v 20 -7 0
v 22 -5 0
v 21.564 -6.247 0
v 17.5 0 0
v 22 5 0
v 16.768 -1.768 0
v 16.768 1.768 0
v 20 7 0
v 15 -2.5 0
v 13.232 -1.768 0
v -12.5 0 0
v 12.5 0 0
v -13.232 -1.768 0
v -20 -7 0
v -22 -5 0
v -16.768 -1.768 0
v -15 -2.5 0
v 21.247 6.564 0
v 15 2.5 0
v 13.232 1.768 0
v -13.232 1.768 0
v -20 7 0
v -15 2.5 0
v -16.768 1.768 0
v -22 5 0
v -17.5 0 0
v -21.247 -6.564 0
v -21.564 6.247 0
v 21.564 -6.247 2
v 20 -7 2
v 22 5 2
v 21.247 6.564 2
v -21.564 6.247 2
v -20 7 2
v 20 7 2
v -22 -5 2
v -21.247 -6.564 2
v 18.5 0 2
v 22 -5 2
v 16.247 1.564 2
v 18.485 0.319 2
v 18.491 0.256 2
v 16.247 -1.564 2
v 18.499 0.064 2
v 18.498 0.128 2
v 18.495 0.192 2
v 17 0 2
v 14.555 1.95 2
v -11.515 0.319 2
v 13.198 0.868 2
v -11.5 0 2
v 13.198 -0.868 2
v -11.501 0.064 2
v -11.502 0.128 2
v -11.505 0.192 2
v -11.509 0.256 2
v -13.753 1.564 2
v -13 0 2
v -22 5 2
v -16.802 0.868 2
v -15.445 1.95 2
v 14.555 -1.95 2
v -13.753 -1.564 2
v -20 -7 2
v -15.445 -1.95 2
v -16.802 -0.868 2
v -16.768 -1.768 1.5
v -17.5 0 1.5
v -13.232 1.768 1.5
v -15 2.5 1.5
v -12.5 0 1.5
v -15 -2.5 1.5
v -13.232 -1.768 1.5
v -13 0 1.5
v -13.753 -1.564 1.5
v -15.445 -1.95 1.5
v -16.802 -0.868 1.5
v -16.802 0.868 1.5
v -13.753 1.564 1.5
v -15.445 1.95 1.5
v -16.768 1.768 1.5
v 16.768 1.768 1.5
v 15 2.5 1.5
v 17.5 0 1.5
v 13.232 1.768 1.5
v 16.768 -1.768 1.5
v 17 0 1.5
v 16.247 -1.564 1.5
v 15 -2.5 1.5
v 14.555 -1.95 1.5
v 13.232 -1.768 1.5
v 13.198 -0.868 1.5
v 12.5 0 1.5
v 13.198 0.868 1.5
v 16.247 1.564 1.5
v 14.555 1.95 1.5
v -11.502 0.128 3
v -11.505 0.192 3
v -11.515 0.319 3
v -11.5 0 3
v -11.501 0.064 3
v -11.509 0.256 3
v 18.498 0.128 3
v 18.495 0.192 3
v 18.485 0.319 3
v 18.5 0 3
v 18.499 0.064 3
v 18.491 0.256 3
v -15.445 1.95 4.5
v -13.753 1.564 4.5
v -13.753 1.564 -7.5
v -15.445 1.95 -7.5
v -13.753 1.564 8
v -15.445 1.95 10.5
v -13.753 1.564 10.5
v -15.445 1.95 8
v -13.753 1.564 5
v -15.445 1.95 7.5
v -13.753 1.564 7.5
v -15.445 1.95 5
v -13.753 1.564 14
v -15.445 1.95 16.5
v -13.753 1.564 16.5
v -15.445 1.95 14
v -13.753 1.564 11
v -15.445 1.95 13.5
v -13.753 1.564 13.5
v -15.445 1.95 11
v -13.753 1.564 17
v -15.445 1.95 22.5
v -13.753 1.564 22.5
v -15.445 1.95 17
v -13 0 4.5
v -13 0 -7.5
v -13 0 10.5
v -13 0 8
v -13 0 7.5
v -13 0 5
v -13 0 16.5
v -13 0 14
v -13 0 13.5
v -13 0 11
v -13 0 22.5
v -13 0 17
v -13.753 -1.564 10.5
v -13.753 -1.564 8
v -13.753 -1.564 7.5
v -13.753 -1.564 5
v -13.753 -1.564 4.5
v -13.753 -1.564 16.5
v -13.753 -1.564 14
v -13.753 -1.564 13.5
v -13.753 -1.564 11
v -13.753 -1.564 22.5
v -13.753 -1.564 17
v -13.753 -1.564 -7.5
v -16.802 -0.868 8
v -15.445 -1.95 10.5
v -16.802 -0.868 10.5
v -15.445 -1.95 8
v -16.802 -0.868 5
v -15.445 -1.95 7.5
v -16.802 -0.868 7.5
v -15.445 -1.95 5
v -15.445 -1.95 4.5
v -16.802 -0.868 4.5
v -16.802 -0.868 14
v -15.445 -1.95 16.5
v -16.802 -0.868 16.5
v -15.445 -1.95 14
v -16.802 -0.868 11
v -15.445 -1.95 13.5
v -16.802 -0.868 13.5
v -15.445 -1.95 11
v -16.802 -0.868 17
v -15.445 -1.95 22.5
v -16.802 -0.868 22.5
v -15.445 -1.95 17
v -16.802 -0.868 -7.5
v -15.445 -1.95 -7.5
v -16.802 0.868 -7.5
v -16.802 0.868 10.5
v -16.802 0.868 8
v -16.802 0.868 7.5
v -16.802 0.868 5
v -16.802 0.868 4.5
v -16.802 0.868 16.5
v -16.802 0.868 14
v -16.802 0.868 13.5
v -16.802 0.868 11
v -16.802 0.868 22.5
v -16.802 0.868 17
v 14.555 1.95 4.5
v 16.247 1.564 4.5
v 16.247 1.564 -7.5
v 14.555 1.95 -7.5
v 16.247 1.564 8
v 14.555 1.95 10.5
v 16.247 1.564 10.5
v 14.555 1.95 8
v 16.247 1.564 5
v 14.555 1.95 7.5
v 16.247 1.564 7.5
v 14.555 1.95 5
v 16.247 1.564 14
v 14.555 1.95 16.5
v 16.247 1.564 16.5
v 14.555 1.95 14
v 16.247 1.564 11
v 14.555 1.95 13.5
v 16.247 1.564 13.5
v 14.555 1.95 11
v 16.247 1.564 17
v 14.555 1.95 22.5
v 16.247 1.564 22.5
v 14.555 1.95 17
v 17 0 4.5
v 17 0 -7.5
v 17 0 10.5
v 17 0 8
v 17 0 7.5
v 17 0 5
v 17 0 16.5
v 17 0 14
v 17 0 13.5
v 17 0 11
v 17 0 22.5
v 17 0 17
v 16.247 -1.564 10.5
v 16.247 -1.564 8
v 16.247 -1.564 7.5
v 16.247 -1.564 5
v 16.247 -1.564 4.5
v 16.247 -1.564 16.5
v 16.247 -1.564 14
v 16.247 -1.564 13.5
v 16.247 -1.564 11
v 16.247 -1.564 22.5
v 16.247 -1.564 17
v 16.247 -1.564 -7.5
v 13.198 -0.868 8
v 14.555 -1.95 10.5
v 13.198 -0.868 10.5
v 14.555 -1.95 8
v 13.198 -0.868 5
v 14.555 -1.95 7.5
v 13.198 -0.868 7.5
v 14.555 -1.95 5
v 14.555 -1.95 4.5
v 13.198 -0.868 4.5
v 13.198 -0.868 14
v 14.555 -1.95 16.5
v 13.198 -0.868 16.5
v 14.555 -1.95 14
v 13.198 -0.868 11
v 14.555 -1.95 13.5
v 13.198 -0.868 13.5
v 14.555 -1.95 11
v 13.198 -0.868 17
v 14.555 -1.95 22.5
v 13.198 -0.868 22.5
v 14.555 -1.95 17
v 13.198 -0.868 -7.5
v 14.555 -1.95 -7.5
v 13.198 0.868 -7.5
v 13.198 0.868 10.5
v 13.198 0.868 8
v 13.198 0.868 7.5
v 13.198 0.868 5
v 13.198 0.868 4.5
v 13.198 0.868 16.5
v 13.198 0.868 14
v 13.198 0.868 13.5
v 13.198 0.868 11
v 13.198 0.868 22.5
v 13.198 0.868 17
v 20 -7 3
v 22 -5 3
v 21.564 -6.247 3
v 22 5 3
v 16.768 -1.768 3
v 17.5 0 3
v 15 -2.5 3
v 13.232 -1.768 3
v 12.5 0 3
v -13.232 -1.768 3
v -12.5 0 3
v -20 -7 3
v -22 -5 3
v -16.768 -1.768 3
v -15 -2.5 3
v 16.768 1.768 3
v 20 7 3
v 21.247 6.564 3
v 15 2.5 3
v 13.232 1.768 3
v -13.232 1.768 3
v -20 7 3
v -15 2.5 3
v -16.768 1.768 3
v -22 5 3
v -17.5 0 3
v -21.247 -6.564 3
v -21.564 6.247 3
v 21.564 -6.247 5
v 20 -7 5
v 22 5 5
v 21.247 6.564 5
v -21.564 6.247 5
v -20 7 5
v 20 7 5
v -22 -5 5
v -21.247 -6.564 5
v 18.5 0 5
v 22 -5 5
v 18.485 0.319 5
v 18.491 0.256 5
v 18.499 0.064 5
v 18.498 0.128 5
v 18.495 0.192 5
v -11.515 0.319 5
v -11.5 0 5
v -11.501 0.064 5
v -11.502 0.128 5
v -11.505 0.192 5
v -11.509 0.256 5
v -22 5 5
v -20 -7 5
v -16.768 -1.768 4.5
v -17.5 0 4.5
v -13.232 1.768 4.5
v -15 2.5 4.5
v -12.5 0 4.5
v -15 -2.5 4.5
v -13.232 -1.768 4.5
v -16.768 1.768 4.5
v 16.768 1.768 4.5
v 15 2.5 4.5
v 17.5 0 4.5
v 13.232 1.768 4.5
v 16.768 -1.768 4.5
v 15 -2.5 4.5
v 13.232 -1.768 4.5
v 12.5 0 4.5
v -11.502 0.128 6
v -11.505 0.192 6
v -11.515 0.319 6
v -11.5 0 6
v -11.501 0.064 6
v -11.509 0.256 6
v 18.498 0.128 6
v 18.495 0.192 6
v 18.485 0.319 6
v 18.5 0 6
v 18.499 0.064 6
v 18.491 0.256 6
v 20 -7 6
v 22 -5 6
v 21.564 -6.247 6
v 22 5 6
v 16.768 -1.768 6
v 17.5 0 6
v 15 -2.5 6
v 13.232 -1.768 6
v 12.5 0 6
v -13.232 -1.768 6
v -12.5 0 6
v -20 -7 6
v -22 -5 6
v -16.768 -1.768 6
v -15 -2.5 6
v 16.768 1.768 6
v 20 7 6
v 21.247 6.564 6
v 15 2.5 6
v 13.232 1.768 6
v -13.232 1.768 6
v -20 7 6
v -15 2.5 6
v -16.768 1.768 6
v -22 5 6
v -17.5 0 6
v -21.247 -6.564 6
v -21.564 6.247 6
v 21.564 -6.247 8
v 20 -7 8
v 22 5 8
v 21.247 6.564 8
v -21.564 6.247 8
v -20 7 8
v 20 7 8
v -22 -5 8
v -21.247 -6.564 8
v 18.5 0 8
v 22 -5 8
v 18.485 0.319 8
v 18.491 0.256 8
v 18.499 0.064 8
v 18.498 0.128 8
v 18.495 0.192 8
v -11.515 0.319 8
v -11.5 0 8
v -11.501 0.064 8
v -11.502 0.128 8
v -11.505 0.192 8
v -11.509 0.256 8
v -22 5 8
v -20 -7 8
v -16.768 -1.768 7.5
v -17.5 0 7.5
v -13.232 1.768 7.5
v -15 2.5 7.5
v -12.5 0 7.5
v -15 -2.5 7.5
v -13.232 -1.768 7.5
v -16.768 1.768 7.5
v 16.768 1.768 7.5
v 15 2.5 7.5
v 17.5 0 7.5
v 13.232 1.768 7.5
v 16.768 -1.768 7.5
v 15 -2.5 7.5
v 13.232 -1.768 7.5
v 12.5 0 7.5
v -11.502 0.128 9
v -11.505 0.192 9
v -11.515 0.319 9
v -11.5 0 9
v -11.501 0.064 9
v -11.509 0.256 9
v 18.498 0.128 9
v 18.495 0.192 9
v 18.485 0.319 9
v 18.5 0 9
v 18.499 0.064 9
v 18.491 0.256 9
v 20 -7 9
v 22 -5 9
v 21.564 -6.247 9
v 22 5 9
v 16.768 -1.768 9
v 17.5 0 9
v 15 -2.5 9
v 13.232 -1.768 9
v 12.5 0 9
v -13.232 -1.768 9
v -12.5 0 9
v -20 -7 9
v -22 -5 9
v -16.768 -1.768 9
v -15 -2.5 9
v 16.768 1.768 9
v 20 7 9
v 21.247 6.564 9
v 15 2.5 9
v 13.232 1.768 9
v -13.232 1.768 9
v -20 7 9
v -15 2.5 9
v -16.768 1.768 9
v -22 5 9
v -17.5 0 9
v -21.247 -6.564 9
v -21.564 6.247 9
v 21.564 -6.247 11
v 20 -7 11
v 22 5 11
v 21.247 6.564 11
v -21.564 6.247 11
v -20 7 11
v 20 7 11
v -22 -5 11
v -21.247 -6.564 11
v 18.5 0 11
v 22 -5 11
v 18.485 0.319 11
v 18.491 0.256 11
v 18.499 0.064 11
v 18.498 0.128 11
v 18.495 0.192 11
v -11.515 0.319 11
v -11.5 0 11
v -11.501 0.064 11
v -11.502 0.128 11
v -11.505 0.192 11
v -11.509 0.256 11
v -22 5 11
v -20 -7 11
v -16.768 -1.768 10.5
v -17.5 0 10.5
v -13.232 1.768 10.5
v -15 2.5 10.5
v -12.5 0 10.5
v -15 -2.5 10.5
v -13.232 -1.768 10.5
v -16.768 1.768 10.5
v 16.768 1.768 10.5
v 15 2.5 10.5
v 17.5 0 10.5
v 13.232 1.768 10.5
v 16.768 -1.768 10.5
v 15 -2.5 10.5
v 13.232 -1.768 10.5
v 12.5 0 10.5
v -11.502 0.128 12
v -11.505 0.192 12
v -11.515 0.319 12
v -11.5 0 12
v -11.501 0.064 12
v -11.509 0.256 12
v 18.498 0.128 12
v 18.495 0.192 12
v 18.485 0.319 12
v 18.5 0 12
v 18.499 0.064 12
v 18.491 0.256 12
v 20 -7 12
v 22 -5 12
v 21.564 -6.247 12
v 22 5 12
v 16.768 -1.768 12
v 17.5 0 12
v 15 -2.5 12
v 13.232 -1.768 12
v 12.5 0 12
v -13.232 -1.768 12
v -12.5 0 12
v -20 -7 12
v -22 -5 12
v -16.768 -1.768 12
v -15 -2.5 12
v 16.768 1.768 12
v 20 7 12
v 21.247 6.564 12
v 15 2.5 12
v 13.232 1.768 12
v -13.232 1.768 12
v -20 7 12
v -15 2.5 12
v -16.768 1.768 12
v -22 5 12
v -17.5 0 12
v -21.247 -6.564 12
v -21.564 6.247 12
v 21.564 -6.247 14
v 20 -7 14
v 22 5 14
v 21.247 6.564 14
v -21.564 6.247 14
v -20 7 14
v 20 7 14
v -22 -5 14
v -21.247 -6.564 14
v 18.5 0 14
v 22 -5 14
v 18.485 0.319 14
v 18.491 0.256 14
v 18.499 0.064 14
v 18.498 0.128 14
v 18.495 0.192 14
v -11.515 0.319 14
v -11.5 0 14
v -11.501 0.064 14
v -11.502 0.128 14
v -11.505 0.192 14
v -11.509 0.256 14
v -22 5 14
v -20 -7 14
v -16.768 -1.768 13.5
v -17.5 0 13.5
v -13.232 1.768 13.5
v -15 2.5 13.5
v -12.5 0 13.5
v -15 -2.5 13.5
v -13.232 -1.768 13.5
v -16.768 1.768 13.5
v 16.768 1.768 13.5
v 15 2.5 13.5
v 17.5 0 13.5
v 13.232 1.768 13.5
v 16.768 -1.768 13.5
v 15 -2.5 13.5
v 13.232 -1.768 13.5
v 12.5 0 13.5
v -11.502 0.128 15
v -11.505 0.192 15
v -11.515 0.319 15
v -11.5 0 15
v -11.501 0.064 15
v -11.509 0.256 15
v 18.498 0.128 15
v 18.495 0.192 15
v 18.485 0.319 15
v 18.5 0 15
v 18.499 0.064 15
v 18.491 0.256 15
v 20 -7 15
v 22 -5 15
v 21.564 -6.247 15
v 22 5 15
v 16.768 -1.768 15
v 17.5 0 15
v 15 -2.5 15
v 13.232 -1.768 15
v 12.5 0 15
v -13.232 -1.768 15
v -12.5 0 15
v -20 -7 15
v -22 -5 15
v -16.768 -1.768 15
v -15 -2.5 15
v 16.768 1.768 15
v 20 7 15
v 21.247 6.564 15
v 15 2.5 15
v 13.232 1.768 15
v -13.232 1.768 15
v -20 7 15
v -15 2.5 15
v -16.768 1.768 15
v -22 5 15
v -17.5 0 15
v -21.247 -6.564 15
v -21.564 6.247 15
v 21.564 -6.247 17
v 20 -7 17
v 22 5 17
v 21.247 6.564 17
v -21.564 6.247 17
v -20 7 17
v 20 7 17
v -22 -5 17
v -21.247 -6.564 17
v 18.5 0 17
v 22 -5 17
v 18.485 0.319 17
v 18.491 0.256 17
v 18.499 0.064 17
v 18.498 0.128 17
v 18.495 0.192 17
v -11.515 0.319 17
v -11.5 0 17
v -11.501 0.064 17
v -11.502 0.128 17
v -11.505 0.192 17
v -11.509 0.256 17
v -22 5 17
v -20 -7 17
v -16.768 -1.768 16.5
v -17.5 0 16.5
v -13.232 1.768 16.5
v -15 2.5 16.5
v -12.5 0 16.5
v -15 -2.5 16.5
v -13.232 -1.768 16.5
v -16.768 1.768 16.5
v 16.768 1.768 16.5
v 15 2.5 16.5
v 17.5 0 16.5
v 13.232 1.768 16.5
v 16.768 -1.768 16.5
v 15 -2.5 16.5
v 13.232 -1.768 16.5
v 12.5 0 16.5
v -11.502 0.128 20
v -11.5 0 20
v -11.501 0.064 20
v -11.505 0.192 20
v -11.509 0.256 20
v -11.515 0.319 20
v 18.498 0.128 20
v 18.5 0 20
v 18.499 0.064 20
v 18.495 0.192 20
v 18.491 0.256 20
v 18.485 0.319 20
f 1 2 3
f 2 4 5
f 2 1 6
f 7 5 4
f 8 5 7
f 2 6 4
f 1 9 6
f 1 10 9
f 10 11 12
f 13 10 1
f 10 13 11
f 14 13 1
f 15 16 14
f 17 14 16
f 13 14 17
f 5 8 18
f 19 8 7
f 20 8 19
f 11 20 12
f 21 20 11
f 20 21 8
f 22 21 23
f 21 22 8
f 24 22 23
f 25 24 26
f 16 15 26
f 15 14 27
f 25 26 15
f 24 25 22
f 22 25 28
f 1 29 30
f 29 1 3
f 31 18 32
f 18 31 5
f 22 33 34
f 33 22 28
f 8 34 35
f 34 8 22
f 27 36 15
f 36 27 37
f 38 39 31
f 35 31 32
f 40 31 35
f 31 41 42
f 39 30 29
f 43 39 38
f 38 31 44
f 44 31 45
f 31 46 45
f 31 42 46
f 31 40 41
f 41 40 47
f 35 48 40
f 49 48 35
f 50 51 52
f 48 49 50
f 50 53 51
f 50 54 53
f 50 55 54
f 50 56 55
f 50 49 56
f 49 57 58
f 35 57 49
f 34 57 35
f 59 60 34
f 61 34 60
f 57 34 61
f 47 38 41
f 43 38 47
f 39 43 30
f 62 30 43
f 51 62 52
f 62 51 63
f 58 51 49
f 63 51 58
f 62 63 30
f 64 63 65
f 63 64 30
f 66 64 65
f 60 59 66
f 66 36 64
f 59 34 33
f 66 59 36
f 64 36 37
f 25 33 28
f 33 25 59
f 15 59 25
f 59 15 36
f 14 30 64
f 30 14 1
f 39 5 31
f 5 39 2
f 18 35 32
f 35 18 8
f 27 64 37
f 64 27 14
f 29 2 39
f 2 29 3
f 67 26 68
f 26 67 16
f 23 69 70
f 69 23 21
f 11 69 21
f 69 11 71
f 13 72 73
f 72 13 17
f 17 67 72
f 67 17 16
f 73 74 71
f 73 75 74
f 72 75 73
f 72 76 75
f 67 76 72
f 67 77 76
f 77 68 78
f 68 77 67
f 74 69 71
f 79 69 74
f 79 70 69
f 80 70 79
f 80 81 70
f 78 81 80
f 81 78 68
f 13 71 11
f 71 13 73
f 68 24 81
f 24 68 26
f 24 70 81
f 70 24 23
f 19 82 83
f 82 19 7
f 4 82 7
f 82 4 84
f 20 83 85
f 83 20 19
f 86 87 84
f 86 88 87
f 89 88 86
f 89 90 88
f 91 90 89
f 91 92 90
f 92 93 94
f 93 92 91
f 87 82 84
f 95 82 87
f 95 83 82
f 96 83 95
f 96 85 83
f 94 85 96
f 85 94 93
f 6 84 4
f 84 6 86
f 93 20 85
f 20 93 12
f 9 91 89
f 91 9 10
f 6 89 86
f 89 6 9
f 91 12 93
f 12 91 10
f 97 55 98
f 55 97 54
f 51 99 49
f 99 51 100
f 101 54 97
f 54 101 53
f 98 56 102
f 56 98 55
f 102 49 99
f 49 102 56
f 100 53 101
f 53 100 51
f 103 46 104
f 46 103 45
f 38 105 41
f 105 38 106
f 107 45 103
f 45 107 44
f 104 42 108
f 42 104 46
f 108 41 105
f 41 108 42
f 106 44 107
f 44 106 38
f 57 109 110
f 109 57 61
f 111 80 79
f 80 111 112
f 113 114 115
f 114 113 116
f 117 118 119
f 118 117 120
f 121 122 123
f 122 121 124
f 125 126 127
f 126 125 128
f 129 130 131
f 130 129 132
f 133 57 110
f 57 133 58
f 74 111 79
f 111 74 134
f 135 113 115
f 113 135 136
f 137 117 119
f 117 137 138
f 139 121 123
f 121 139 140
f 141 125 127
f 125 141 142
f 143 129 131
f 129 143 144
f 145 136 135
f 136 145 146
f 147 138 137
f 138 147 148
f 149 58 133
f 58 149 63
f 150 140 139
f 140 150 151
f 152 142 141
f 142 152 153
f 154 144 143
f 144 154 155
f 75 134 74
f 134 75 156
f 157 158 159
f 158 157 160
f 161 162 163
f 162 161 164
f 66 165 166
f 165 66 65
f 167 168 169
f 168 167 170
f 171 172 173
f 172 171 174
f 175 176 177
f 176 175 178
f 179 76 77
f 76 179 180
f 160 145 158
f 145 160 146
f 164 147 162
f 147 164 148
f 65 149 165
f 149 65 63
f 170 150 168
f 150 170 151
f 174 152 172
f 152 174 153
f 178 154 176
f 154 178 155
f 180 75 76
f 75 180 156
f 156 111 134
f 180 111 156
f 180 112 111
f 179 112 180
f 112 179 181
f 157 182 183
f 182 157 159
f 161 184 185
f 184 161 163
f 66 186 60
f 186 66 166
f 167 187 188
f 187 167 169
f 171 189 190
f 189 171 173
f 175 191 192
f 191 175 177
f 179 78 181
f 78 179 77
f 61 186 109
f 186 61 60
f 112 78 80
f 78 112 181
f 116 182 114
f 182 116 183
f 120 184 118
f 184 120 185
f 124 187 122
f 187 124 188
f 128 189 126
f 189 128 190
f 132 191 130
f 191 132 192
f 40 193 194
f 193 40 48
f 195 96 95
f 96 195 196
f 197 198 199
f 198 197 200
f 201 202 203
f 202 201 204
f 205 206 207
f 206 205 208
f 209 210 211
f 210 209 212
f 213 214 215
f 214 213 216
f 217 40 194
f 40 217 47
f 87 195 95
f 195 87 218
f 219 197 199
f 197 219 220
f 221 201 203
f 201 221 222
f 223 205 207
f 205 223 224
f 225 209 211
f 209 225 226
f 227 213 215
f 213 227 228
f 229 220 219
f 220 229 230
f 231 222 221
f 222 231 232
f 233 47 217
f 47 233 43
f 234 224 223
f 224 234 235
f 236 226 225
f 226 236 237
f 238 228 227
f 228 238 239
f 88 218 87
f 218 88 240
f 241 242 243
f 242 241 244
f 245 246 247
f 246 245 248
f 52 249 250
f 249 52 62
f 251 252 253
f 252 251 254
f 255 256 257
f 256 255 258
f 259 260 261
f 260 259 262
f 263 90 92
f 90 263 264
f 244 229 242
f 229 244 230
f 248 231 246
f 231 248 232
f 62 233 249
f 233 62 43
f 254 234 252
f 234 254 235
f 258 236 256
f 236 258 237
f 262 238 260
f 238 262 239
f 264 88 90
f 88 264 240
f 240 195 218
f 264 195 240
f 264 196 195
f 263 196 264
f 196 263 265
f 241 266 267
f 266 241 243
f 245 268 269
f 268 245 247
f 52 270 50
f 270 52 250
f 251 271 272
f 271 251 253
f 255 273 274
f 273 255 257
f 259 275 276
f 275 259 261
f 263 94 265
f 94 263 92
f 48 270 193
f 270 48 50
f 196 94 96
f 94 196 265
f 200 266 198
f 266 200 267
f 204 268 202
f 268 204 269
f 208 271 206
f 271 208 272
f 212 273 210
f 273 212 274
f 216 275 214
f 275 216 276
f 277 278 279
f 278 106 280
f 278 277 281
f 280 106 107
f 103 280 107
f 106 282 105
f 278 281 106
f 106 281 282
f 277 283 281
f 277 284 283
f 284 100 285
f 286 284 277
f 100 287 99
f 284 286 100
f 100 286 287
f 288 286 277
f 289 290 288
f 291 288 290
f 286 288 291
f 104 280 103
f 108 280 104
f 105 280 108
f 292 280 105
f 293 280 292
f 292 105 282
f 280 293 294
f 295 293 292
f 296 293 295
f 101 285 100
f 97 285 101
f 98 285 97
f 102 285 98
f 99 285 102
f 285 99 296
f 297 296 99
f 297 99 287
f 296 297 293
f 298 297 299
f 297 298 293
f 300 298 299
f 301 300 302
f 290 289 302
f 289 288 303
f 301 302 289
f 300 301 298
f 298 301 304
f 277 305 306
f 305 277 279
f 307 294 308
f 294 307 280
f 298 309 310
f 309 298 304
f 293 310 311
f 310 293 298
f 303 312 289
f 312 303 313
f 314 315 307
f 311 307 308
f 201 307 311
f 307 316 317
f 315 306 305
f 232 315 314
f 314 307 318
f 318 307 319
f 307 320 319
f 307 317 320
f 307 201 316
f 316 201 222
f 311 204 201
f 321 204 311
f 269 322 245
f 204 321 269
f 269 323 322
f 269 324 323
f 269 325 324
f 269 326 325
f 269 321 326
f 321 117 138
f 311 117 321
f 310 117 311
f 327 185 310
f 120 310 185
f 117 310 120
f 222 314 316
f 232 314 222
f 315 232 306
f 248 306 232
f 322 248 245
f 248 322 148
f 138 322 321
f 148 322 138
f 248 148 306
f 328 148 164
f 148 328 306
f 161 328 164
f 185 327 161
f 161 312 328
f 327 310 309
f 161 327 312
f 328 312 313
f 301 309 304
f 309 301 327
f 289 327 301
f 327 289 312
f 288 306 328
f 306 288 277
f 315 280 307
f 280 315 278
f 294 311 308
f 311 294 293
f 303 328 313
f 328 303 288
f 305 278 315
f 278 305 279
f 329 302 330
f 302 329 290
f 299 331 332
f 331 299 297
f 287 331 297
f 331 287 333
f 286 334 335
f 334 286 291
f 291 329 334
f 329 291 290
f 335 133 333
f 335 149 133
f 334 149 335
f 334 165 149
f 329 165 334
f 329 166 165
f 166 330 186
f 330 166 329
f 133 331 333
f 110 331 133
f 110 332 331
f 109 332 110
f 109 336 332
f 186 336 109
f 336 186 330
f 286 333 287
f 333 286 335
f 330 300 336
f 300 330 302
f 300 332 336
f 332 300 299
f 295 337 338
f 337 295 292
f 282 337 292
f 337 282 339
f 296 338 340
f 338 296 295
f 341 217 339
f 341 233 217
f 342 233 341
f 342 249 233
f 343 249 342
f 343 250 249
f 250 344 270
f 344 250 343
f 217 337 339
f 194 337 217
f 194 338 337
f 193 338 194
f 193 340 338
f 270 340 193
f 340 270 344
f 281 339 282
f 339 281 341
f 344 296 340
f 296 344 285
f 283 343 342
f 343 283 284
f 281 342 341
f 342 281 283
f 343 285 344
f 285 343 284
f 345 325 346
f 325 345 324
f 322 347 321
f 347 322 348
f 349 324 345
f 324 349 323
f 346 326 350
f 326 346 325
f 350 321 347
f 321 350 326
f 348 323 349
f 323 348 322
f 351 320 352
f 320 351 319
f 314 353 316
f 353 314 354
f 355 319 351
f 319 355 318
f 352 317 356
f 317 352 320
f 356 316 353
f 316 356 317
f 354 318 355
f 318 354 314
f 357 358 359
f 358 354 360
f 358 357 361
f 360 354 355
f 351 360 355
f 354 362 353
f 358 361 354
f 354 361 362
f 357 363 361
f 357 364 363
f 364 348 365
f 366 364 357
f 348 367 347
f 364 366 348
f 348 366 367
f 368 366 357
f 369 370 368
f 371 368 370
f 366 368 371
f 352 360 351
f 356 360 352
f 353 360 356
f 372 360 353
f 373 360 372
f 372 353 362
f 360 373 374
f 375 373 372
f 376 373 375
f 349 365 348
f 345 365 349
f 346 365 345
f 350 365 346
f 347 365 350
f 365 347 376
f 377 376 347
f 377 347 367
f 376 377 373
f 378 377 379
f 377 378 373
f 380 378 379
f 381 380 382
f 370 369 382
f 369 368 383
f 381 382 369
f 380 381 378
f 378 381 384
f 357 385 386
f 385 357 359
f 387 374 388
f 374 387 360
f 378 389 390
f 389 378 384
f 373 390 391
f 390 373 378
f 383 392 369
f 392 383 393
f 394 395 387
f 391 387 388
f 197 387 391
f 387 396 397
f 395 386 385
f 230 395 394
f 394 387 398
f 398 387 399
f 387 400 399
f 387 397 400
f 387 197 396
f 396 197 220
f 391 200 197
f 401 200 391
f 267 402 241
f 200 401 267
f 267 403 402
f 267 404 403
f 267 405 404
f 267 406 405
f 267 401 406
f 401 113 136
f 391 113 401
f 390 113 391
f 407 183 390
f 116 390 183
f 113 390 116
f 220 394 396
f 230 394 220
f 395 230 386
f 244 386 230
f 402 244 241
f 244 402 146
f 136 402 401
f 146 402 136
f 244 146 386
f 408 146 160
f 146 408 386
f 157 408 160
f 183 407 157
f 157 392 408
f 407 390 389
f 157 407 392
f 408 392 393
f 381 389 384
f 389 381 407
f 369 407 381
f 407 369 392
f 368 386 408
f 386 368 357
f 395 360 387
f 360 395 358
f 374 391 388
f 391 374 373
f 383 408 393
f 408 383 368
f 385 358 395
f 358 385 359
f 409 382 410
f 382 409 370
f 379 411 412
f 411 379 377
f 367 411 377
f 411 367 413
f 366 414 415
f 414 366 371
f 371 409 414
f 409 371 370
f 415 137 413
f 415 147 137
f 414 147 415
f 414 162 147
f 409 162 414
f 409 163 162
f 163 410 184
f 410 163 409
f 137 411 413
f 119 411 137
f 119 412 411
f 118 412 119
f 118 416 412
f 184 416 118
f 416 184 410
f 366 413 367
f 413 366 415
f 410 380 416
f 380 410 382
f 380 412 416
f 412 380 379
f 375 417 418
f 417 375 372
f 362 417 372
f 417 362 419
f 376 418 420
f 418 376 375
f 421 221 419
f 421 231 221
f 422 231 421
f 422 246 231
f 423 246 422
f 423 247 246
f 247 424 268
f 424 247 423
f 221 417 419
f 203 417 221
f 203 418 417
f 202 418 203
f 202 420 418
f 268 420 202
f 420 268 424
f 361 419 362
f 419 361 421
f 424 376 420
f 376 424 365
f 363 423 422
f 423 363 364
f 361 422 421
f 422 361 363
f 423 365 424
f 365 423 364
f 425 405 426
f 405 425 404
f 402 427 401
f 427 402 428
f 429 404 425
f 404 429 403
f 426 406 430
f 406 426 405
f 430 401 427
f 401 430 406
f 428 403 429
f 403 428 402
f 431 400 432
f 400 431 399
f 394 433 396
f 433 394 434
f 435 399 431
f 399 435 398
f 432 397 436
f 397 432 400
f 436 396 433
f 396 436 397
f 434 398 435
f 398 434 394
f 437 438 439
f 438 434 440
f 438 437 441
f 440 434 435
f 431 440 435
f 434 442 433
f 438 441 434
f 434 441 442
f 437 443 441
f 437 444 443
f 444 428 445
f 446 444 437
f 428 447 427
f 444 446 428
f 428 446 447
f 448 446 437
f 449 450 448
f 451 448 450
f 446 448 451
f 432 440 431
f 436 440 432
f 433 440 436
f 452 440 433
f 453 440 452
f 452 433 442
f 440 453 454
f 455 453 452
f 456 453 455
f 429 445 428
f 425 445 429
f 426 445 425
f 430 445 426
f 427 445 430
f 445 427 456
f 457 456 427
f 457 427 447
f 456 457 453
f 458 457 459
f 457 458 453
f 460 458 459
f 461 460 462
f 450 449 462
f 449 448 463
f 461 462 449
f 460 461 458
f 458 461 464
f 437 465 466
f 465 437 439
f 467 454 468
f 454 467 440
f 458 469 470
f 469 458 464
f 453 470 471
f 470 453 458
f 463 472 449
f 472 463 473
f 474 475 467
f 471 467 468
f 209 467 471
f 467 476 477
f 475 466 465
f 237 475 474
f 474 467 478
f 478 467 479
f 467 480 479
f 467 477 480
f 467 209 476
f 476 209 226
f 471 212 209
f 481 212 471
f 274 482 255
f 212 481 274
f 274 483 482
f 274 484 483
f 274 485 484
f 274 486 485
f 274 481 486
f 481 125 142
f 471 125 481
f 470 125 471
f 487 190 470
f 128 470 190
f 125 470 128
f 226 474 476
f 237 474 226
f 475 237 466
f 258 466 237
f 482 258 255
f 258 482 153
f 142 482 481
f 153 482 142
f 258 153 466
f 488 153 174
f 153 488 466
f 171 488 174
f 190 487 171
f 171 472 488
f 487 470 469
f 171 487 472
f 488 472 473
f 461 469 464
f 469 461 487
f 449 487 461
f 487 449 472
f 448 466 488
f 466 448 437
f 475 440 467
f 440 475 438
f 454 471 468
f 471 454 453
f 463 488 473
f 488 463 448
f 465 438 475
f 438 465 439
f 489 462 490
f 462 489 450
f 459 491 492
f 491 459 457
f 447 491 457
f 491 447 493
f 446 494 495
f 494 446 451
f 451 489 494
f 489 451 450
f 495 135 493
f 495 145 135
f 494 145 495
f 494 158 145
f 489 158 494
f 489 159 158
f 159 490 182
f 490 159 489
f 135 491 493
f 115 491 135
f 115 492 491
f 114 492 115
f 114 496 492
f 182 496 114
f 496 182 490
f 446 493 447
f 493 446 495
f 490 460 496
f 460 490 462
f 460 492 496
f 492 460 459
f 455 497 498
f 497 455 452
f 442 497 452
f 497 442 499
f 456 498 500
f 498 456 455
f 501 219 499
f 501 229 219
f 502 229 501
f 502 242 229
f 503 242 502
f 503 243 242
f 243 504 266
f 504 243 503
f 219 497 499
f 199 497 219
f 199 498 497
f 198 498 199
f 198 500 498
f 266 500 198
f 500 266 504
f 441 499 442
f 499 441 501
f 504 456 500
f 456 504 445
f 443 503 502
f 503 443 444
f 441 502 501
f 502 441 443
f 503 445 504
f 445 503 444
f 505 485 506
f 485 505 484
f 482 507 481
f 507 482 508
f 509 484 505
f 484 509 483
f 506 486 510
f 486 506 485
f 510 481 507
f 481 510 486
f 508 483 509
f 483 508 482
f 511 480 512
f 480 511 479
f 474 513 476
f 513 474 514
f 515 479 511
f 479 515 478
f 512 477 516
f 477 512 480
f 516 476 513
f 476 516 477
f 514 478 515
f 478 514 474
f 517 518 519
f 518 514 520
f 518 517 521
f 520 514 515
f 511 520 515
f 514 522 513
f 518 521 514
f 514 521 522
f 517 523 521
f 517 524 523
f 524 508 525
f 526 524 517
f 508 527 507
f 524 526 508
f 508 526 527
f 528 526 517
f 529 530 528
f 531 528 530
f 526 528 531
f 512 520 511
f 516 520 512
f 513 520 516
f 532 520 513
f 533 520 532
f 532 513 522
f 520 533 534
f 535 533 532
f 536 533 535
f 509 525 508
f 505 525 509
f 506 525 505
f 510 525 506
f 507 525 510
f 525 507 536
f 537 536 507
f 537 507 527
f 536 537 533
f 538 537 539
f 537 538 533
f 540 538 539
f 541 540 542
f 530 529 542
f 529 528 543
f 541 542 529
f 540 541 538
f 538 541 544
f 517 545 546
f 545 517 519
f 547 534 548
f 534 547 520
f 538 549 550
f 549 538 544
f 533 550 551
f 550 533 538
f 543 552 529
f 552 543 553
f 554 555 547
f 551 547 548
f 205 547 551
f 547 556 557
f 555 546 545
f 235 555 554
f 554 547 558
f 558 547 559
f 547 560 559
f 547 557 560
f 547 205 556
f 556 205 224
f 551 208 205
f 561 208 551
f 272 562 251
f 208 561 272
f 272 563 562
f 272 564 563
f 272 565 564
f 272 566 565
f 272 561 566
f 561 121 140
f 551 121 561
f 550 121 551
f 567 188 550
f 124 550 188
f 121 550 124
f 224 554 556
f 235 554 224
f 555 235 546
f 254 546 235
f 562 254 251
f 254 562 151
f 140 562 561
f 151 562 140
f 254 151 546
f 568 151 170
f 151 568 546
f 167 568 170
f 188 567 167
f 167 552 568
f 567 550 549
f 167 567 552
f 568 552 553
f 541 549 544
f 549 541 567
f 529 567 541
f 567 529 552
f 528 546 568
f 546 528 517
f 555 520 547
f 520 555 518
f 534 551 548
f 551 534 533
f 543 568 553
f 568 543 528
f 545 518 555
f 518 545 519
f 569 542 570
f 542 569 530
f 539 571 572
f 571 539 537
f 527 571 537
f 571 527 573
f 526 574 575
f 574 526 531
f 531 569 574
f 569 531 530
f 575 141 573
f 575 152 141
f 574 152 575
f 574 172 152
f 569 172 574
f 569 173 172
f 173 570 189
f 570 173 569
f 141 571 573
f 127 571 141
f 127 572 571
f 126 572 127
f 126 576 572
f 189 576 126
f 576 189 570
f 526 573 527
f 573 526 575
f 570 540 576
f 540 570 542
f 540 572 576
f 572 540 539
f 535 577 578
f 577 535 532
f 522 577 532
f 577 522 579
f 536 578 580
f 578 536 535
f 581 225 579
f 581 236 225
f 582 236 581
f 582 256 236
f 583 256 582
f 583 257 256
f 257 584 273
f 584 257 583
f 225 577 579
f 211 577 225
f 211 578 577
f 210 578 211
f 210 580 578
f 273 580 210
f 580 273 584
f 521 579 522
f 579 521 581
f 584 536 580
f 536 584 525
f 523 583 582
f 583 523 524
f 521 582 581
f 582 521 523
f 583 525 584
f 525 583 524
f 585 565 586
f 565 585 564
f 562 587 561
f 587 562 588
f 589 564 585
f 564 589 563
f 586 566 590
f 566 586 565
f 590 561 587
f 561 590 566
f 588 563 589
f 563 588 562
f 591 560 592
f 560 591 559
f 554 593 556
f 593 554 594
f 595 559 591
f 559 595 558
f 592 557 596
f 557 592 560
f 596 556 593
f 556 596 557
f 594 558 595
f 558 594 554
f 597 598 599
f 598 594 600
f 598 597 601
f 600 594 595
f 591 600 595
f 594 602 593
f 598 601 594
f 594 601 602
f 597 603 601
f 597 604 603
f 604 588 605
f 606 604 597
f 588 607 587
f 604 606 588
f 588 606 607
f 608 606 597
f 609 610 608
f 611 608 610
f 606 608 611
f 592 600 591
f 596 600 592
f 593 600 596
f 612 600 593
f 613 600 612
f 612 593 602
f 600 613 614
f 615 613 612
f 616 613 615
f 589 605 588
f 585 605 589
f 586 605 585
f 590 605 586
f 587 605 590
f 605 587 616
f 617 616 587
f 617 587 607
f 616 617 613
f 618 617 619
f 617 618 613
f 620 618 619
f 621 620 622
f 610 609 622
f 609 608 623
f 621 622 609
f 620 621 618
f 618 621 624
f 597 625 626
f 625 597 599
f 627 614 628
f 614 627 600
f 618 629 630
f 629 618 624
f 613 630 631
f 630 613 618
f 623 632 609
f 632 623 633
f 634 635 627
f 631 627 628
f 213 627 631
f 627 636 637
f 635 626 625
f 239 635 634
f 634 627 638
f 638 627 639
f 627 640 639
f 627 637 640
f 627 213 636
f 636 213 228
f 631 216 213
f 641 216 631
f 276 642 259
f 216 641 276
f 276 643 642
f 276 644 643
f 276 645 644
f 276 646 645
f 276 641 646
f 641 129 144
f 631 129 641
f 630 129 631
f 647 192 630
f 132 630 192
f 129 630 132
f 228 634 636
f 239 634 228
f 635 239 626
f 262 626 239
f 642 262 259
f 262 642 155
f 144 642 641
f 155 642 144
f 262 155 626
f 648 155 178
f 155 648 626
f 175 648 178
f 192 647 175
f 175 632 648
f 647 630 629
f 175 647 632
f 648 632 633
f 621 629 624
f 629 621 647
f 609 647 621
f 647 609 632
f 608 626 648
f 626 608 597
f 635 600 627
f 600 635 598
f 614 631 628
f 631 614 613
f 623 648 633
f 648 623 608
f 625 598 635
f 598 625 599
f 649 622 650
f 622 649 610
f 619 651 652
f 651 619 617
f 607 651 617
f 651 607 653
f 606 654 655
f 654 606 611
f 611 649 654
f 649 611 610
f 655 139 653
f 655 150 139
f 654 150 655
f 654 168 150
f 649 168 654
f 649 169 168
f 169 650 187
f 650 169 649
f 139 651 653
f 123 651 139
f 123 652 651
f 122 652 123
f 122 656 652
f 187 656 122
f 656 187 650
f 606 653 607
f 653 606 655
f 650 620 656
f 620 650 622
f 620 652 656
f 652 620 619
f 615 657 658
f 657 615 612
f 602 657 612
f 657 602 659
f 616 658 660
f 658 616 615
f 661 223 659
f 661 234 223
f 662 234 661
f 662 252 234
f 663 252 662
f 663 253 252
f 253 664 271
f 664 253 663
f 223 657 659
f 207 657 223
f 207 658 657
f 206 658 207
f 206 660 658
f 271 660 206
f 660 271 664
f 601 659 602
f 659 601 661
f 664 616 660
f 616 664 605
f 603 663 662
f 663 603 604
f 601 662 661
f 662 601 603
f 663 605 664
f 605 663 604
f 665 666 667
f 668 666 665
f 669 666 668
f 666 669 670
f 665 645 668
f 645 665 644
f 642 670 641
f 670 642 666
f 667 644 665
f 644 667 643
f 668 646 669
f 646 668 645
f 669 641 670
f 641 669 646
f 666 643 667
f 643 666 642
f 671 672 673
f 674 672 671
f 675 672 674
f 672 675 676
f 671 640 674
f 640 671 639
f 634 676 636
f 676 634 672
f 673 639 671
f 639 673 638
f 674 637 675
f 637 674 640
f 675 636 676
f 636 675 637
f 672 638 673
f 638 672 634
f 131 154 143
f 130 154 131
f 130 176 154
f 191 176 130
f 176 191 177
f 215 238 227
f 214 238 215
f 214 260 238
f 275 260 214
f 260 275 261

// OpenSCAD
// Parameters for the link plate
link_plate_length = 40; // Length of the link plate
link_plate_width = 10;  // Width of the link plate
link_plate_thickness = 2; // Thickness of the link plate
hole_diameter = 5; // Diameter of the holes
hole_spacing = 30; // Distance between the centers of the two holes

// Parameters for the bolt
bolt_diameter = 4; // Diameter of the bolt
bolt_length = 15; // Length of the bolt

// Parameters for the nut
nut_diameter = 7; // Diameter of the nut
nut_thickness = 3; // Thickness of the nut

// Function to create a link plate
module link_plate() {
    difference() {
        // Base plate
        linear_extrude(height = link_plate_thickness) {
            offset(r = 2) // Add slight curvature to the edges
                square([link_plate_length, link_plate_width], center = true);
        }
        // Holes
        translate([-hole_spacing / 2, 0, 0])
            cylinder(h = link_plate_thickness + 1, d = hole_diameter, center = true);
        translate([hole_spacing / 2, 0, 0])
            cylinder(h = link_plate_thickness + 1, d = hole_diameter, center = true);
    }
}

// Function to create a bolt
module bolt() {
    cylinder(h = bolt_length, d = bolt_diameter, center = false);
}

// Function to create a nut
module nut() {
    difference() {
        // Hexagonal prism
        linear_extrude(height = nut_thickness)
            polygon(points = [
                [cos(0) * nut_diameter / 2, sin(0) * nut_diameter / 2],
                [cos(PI / 3) * nut_diameter / 2, sin(PI / 3) * nut_diameter / 2],
                [cos(2 * PI / 3) * nut_diameter / 2, sin(2 * PI / 3) * nut_diameter / 2],
                [cos(PI) * nut_diameter / 2, sin(PI) * nut_diameter / 2],
                [cos(4 * PI / 3) * nut_diameter / 2, sin(4 * PI / 3) * nut_diameter / 2],
                [cos(5 * PI / 3) * nut_diameter / 2, sin(5 * PI / 3) * nut_diameter / 2]
            ]);
        // Internal threading (hole)
        translate([0, 0, -1])
            cylinder(h = nut_thickness + 2, d = bolt_diameter, center = false);
    }
}

// Assembly of the flexible coupling
module flexible_coupling() {
    for (i = [0:5]) {
        translate([0, 0, i * (link_plate_thickness + 1)]) {
            link_plate();
            // Add bolts and nuts
            translate([-hole_spacing / 2, 0, -bolt_length / 2])
                bolt();
            translate([hole_spacing / 2, 0, -bolt_length / 2])
                bolt();
            translate([-hole_spacing / 2, 0, link_plate_thickness])
                nut();
            translate([hole_spacing / 2, 0, link_plate_thickness])
                nut();
        }
    }
}

// Render the flexible coupling
flexible_coupling();
